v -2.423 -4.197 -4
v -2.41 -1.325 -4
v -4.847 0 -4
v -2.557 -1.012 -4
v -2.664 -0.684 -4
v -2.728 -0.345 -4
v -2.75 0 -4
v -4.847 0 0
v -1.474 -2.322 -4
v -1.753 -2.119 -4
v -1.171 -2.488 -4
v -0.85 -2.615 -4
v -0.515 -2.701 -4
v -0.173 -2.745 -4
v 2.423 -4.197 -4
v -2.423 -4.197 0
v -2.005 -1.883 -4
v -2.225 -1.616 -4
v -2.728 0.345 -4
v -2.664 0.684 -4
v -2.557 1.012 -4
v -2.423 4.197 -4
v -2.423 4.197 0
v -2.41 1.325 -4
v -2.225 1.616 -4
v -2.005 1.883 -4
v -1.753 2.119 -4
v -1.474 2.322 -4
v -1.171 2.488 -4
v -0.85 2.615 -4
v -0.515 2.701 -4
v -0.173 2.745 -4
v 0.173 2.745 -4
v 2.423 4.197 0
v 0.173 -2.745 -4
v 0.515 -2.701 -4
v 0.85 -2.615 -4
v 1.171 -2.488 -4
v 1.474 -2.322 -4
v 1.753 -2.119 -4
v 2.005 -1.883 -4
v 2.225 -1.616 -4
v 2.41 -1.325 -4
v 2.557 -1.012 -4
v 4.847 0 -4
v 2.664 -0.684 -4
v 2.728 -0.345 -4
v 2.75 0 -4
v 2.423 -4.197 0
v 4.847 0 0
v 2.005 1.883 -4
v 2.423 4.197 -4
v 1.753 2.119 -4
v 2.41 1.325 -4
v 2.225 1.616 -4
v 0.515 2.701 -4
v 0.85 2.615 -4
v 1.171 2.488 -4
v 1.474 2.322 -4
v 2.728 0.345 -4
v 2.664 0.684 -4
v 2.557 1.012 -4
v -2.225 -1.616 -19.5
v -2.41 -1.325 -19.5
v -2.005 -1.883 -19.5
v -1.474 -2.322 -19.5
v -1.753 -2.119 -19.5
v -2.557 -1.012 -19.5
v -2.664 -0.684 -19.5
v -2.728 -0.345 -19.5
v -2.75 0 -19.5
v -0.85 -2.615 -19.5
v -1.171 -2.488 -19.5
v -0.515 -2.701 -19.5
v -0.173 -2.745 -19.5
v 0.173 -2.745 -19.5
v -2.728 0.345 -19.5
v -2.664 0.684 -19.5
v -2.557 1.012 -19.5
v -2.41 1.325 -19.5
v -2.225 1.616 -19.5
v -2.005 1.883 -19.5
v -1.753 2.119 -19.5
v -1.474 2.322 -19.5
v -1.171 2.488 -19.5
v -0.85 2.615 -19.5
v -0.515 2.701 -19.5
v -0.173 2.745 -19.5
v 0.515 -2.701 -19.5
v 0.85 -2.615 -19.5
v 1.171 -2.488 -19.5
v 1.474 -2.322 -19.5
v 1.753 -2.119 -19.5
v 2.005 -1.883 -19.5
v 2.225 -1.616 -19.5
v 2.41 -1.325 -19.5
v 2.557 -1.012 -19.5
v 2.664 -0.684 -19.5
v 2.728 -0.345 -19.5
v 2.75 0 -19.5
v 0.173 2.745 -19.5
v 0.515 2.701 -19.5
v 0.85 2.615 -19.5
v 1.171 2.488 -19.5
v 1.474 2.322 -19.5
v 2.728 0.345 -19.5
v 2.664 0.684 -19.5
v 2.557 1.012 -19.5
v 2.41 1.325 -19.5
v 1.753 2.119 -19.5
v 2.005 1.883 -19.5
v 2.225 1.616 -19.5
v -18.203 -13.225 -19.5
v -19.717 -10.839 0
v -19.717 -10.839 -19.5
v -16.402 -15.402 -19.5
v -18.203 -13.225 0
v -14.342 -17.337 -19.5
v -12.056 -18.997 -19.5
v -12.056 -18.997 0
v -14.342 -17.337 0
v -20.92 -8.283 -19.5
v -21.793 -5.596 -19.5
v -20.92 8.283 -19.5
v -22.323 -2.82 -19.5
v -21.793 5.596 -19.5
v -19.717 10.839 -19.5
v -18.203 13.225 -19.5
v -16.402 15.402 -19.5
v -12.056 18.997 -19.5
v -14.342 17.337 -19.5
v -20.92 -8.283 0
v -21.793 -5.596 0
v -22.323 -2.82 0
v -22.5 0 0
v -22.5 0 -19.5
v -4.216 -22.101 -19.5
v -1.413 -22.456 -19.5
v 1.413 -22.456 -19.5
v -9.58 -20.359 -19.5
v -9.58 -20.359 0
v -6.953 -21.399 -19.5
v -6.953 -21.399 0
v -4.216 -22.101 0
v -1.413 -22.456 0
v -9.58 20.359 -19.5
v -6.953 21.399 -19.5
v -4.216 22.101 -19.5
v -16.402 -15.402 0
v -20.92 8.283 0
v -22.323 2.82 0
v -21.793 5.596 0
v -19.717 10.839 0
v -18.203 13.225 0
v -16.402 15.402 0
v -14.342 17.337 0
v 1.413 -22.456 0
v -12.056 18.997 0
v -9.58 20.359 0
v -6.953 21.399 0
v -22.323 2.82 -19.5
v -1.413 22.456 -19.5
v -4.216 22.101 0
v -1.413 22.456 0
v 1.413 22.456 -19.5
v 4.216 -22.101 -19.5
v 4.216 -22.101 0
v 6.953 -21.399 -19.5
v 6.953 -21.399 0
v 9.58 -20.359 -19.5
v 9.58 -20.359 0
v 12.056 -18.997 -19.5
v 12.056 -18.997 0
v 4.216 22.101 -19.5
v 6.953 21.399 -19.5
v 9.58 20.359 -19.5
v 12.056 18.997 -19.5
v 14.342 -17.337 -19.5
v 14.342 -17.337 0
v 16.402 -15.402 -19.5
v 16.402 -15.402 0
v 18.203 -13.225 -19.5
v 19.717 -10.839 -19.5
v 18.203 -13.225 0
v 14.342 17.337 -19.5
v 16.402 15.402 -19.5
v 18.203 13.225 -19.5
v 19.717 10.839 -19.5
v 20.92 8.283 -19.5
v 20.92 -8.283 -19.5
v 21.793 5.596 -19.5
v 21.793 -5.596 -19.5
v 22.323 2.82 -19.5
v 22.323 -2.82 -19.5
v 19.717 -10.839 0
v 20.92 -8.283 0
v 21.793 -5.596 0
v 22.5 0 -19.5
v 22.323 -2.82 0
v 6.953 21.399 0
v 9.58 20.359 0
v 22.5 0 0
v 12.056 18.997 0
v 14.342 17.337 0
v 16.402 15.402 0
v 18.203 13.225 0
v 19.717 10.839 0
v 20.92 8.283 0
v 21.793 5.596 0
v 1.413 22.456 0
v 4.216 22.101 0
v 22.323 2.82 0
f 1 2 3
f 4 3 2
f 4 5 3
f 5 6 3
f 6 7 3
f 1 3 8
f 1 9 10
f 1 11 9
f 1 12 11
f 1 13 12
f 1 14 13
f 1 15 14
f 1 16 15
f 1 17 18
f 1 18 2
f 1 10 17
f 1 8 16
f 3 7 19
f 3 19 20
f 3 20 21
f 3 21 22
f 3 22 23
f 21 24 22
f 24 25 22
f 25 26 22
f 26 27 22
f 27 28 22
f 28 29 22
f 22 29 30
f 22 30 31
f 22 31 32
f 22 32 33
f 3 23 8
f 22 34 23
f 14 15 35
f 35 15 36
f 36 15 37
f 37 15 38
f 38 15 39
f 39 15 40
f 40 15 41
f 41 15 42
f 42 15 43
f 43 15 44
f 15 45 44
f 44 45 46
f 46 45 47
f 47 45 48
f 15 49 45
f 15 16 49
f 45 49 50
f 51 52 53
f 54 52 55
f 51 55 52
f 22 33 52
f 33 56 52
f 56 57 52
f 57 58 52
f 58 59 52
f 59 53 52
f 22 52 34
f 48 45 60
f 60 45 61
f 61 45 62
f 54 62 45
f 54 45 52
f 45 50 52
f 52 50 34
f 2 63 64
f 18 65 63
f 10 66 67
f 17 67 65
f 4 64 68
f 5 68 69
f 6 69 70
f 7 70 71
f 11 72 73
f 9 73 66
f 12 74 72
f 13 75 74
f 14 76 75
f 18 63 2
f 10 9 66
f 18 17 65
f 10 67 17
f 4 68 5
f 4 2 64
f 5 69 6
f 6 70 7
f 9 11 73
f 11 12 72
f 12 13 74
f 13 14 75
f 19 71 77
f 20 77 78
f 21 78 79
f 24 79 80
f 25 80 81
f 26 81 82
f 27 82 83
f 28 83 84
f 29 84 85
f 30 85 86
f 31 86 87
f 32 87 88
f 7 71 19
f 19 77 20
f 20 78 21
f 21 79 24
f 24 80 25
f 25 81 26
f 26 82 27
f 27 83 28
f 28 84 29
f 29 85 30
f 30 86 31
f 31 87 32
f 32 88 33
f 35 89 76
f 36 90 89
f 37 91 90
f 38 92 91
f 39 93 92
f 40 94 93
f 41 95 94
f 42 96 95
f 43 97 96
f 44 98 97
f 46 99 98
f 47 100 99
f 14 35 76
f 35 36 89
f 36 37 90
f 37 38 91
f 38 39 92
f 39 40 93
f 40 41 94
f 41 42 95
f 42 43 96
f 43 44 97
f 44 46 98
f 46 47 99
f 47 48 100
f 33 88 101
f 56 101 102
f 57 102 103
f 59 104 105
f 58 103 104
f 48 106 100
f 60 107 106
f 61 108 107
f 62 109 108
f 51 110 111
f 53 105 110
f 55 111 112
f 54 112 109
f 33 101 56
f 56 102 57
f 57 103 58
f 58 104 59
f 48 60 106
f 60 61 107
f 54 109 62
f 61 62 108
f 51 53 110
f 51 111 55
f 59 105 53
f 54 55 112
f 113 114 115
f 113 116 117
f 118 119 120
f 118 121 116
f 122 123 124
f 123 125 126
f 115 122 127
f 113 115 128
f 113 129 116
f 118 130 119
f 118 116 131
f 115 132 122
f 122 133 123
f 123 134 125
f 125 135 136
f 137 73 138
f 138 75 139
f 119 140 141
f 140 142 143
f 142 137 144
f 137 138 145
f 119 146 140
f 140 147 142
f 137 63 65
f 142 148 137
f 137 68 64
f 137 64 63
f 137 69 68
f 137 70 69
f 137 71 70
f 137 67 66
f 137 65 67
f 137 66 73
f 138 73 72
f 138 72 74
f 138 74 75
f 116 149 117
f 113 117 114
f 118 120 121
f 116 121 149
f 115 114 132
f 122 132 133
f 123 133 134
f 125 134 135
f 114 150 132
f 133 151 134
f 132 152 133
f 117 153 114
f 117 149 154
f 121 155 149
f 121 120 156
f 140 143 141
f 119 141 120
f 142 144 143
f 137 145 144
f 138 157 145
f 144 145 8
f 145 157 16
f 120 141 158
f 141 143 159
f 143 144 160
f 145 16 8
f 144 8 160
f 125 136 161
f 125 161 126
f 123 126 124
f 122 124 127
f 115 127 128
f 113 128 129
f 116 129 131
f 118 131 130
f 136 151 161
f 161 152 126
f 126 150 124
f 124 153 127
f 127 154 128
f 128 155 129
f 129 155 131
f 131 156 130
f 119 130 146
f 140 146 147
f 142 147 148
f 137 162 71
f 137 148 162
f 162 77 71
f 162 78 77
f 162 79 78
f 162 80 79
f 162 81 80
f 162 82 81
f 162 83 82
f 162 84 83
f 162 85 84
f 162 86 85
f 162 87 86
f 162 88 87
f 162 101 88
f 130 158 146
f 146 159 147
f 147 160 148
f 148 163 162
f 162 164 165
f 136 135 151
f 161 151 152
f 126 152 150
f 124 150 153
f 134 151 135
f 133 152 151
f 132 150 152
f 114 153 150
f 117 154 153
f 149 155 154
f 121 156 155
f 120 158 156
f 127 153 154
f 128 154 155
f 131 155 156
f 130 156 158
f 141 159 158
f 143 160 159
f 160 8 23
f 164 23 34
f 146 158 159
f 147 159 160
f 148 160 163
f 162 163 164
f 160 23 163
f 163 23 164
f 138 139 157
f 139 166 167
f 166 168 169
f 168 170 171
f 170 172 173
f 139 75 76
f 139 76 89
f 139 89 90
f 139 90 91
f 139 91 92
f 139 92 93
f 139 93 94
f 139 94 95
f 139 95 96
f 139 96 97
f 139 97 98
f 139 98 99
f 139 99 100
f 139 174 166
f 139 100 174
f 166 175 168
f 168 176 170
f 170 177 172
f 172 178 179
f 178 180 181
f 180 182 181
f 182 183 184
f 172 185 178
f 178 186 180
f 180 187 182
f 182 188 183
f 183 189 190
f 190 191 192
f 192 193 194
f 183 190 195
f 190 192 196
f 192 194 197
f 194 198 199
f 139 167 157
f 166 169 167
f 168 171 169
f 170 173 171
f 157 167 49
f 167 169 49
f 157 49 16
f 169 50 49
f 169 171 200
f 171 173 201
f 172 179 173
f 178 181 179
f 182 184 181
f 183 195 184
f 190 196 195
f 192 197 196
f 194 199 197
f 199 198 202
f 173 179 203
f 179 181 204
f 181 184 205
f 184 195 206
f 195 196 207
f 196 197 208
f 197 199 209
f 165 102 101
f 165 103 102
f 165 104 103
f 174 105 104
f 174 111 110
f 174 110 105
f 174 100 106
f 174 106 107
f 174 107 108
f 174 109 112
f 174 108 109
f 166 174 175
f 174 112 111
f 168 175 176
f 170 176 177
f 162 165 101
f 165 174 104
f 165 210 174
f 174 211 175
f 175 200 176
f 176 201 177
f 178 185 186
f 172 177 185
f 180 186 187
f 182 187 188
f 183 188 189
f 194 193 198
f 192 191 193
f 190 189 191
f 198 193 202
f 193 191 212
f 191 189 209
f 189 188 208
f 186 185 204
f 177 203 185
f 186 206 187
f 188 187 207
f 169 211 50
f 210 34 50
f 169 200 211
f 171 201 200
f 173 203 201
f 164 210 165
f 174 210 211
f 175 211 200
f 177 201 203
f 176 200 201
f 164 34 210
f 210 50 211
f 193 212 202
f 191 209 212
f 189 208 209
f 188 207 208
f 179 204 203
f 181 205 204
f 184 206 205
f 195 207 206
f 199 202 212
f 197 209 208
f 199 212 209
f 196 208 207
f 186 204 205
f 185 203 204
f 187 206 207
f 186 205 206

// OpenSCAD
$fn = 50;

difference() {
	union() {
		translate(v = [0, 0, -19.5]) {
			cylinder(h = 19.5, r = 22.5);
		}
	}
	union() {
		translate(v = [0, 0, 0]) {
			rotate(a = [0, 0, 0]) {
				difference() {
					union() {
						translate(v = [0, 0, -4]) {
							linear_extrude(height = 4) {
								polygon(points = [[4.8468, 0.0], [2.4234000000000004, 4.197451927062417], [-2.423399999999999, 4.197451927062417], [-4.8468, 5.935618106107392e-16], [-2.423400000000002, -4.197451927062416], [2.423399999999997, -4.197451927062419]]);
							}
						}
					}
					union();
				}
			}
		}
		#translate(v = [0, 0, -100.0]) {
			cylinder(h = 200, r = 2.75);
		}
	}
}
